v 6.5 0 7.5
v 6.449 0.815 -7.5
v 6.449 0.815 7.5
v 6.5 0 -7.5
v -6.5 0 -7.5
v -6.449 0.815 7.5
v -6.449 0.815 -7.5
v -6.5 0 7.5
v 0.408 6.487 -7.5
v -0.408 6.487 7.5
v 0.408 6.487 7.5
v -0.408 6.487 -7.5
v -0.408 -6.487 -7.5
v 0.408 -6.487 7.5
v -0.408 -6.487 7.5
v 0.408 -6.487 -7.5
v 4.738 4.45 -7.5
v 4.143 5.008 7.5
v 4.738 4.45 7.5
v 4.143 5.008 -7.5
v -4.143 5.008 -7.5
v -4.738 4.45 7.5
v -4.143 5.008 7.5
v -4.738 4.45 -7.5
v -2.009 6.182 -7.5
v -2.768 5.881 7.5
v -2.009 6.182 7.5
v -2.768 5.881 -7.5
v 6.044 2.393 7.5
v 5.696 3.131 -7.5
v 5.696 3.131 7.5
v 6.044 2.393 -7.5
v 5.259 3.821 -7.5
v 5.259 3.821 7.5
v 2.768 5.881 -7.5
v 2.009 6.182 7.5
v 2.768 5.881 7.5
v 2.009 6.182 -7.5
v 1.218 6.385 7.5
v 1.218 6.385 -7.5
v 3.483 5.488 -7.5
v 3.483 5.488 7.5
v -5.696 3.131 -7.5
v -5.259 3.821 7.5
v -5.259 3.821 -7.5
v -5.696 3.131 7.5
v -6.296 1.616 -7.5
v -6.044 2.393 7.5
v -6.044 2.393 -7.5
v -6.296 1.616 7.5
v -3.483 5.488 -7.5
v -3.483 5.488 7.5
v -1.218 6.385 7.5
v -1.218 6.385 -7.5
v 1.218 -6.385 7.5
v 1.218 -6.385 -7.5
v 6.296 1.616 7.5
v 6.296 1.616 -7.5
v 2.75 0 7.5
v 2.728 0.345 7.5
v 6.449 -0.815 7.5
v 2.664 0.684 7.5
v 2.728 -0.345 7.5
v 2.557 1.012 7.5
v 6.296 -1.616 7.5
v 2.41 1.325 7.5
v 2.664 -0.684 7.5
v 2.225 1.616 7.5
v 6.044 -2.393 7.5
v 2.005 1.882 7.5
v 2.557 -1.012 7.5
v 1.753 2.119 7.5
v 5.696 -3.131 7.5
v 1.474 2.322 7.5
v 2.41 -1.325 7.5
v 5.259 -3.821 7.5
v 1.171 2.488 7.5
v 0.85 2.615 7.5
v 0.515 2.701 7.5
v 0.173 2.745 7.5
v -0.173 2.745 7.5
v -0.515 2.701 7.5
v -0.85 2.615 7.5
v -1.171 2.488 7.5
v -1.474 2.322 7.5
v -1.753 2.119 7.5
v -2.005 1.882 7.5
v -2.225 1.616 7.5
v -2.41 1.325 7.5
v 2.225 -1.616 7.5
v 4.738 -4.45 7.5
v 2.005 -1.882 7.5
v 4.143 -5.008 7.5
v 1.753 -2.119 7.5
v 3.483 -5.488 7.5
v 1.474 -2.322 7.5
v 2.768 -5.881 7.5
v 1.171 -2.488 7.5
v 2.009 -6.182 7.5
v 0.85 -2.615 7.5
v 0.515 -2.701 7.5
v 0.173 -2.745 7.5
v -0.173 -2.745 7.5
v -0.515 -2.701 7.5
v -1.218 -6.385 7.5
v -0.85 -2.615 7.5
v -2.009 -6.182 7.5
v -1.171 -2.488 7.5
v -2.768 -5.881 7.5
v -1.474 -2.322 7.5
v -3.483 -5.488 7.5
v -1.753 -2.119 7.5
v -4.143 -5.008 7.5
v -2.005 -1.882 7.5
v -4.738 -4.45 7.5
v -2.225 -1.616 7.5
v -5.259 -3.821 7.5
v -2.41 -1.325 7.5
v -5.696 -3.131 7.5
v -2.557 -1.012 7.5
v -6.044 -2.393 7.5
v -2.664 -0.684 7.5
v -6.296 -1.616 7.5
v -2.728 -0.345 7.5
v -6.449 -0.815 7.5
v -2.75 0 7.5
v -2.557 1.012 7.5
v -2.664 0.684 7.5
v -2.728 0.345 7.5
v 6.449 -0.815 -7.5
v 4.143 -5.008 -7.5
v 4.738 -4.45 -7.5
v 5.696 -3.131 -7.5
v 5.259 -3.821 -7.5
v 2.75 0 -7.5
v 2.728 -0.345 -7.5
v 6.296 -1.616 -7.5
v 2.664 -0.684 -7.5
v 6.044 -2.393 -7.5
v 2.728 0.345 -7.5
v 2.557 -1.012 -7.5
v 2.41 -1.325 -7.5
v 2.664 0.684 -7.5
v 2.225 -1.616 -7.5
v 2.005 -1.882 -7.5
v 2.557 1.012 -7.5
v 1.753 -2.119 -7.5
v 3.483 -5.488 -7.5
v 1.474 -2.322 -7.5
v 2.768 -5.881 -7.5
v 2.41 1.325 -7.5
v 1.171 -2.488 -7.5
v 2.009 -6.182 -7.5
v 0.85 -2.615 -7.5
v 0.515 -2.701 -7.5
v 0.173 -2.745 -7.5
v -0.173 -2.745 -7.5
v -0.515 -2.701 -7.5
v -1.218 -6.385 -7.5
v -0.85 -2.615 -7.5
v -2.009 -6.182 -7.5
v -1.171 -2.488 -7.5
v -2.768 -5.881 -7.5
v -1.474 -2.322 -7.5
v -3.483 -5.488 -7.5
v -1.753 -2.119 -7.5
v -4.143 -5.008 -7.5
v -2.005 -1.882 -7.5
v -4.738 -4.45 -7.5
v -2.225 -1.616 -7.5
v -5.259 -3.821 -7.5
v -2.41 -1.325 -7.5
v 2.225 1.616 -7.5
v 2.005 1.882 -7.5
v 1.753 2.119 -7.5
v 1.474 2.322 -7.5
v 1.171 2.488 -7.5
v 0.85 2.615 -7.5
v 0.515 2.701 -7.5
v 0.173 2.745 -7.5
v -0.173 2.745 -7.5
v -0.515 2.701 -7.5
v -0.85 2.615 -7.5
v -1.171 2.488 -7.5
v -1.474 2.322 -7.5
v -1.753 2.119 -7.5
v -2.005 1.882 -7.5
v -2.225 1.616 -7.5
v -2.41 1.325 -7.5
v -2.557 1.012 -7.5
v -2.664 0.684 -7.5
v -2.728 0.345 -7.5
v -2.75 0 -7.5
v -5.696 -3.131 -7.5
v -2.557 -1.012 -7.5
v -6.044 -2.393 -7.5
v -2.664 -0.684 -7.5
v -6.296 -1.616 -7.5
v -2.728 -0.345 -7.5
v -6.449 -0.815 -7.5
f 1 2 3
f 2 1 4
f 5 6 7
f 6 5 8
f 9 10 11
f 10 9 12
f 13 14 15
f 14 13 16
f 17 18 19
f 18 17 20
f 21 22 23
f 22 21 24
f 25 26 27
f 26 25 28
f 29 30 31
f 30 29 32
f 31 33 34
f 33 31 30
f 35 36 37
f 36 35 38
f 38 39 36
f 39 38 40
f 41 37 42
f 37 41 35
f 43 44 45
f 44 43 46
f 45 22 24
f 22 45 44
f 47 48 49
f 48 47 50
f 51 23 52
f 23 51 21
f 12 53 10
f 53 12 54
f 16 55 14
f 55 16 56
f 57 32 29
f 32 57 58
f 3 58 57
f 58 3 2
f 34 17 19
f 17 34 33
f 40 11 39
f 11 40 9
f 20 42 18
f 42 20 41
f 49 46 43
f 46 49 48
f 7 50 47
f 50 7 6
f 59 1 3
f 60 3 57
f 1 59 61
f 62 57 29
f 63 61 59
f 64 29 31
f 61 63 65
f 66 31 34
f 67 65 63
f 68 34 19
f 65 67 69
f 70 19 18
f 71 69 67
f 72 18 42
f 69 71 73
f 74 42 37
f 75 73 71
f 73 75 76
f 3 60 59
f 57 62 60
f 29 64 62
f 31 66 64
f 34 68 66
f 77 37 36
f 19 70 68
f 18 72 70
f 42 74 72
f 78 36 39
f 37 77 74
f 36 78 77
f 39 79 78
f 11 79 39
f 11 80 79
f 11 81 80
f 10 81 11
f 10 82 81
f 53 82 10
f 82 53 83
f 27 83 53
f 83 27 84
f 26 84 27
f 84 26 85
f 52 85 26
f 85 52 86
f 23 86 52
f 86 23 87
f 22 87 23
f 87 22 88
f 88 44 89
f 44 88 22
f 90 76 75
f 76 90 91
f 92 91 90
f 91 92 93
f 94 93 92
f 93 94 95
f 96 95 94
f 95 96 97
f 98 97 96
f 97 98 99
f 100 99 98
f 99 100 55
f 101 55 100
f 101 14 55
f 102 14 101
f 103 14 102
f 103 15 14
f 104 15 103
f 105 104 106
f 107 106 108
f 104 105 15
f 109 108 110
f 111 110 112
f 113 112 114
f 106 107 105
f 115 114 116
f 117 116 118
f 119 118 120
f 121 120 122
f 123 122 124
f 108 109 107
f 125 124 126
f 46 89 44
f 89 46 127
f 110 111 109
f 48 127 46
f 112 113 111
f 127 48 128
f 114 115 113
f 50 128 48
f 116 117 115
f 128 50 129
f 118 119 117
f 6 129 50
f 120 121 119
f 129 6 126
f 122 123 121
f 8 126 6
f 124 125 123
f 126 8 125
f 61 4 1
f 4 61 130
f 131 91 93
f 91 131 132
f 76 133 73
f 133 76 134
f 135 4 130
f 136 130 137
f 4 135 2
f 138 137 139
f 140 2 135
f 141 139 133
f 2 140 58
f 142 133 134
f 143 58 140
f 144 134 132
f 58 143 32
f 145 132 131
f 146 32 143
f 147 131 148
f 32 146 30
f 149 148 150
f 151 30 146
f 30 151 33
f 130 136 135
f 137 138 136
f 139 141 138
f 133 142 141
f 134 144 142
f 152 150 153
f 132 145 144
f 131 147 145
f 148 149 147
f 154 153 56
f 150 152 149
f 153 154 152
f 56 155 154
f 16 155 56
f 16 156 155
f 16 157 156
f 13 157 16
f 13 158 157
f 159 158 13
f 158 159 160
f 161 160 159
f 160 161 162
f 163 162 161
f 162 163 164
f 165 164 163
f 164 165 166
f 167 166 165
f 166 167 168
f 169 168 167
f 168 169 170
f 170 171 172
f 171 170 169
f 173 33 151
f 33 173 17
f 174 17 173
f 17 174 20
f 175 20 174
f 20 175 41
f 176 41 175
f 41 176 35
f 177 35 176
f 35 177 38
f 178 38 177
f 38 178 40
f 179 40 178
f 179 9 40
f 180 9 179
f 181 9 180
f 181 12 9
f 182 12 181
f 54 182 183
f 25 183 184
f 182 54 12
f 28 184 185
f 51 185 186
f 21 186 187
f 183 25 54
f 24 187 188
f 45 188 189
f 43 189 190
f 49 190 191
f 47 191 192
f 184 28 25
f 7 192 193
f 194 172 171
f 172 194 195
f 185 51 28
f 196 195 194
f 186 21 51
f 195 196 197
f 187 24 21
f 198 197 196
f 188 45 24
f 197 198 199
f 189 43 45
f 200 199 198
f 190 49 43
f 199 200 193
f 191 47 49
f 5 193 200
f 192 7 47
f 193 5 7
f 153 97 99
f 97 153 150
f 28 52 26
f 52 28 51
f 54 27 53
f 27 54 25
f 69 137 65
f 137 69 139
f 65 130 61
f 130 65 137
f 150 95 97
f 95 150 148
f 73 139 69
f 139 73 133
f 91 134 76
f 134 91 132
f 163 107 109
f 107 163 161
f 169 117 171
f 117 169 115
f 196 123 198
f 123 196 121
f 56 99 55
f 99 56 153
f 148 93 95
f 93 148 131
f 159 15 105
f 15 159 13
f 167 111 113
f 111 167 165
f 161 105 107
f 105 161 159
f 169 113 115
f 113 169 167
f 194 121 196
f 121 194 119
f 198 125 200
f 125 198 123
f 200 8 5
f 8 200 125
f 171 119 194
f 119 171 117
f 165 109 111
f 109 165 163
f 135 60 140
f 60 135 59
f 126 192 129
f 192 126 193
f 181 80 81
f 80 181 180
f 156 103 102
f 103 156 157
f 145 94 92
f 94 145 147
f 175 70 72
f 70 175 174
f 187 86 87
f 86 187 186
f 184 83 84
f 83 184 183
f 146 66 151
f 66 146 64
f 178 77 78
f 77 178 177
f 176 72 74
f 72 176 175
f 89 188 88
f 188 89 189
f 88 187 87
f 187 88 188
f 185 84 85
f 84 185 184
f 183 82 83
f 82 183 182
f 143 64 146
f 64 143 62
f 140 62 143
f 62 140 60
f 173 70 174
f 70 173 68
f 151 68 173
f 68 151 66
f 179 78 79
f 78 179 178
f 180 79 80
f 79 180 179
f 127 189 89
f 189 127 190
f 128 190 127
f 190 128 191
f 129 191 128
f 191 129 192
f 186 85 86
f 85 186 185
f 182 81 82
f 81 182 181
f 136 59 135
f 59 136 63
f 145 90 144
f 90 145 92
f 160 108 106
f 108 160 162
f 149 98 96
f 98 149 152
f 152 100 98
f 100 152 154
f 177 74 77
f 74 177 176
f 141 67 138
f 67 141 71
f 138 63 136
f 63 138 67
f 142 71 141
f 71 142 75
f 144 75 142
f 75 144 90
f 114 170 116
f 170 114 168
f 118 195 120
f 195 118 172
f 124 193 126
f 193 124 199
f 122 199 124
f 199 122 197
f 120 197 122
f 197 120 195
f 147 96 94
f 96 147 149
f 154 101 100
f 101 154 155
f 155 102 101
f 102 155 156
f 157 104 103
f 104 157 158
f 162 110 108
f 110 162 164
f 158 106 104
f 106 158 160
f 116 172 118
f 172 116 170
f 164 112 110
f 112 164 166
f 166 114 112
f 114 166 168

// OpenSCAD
$fn = 50;


difference() {
	union() {
		translate(v = [0, 0, -7.5000000000]) {
			cylinder(h = 15, r = 6.5000000000);
		}
	}
	union() {
		translate(v = [0, 0, -100.0000000000]) {
			cylinder(h = 200, r = 2.7500000000);
		}
	}
}
